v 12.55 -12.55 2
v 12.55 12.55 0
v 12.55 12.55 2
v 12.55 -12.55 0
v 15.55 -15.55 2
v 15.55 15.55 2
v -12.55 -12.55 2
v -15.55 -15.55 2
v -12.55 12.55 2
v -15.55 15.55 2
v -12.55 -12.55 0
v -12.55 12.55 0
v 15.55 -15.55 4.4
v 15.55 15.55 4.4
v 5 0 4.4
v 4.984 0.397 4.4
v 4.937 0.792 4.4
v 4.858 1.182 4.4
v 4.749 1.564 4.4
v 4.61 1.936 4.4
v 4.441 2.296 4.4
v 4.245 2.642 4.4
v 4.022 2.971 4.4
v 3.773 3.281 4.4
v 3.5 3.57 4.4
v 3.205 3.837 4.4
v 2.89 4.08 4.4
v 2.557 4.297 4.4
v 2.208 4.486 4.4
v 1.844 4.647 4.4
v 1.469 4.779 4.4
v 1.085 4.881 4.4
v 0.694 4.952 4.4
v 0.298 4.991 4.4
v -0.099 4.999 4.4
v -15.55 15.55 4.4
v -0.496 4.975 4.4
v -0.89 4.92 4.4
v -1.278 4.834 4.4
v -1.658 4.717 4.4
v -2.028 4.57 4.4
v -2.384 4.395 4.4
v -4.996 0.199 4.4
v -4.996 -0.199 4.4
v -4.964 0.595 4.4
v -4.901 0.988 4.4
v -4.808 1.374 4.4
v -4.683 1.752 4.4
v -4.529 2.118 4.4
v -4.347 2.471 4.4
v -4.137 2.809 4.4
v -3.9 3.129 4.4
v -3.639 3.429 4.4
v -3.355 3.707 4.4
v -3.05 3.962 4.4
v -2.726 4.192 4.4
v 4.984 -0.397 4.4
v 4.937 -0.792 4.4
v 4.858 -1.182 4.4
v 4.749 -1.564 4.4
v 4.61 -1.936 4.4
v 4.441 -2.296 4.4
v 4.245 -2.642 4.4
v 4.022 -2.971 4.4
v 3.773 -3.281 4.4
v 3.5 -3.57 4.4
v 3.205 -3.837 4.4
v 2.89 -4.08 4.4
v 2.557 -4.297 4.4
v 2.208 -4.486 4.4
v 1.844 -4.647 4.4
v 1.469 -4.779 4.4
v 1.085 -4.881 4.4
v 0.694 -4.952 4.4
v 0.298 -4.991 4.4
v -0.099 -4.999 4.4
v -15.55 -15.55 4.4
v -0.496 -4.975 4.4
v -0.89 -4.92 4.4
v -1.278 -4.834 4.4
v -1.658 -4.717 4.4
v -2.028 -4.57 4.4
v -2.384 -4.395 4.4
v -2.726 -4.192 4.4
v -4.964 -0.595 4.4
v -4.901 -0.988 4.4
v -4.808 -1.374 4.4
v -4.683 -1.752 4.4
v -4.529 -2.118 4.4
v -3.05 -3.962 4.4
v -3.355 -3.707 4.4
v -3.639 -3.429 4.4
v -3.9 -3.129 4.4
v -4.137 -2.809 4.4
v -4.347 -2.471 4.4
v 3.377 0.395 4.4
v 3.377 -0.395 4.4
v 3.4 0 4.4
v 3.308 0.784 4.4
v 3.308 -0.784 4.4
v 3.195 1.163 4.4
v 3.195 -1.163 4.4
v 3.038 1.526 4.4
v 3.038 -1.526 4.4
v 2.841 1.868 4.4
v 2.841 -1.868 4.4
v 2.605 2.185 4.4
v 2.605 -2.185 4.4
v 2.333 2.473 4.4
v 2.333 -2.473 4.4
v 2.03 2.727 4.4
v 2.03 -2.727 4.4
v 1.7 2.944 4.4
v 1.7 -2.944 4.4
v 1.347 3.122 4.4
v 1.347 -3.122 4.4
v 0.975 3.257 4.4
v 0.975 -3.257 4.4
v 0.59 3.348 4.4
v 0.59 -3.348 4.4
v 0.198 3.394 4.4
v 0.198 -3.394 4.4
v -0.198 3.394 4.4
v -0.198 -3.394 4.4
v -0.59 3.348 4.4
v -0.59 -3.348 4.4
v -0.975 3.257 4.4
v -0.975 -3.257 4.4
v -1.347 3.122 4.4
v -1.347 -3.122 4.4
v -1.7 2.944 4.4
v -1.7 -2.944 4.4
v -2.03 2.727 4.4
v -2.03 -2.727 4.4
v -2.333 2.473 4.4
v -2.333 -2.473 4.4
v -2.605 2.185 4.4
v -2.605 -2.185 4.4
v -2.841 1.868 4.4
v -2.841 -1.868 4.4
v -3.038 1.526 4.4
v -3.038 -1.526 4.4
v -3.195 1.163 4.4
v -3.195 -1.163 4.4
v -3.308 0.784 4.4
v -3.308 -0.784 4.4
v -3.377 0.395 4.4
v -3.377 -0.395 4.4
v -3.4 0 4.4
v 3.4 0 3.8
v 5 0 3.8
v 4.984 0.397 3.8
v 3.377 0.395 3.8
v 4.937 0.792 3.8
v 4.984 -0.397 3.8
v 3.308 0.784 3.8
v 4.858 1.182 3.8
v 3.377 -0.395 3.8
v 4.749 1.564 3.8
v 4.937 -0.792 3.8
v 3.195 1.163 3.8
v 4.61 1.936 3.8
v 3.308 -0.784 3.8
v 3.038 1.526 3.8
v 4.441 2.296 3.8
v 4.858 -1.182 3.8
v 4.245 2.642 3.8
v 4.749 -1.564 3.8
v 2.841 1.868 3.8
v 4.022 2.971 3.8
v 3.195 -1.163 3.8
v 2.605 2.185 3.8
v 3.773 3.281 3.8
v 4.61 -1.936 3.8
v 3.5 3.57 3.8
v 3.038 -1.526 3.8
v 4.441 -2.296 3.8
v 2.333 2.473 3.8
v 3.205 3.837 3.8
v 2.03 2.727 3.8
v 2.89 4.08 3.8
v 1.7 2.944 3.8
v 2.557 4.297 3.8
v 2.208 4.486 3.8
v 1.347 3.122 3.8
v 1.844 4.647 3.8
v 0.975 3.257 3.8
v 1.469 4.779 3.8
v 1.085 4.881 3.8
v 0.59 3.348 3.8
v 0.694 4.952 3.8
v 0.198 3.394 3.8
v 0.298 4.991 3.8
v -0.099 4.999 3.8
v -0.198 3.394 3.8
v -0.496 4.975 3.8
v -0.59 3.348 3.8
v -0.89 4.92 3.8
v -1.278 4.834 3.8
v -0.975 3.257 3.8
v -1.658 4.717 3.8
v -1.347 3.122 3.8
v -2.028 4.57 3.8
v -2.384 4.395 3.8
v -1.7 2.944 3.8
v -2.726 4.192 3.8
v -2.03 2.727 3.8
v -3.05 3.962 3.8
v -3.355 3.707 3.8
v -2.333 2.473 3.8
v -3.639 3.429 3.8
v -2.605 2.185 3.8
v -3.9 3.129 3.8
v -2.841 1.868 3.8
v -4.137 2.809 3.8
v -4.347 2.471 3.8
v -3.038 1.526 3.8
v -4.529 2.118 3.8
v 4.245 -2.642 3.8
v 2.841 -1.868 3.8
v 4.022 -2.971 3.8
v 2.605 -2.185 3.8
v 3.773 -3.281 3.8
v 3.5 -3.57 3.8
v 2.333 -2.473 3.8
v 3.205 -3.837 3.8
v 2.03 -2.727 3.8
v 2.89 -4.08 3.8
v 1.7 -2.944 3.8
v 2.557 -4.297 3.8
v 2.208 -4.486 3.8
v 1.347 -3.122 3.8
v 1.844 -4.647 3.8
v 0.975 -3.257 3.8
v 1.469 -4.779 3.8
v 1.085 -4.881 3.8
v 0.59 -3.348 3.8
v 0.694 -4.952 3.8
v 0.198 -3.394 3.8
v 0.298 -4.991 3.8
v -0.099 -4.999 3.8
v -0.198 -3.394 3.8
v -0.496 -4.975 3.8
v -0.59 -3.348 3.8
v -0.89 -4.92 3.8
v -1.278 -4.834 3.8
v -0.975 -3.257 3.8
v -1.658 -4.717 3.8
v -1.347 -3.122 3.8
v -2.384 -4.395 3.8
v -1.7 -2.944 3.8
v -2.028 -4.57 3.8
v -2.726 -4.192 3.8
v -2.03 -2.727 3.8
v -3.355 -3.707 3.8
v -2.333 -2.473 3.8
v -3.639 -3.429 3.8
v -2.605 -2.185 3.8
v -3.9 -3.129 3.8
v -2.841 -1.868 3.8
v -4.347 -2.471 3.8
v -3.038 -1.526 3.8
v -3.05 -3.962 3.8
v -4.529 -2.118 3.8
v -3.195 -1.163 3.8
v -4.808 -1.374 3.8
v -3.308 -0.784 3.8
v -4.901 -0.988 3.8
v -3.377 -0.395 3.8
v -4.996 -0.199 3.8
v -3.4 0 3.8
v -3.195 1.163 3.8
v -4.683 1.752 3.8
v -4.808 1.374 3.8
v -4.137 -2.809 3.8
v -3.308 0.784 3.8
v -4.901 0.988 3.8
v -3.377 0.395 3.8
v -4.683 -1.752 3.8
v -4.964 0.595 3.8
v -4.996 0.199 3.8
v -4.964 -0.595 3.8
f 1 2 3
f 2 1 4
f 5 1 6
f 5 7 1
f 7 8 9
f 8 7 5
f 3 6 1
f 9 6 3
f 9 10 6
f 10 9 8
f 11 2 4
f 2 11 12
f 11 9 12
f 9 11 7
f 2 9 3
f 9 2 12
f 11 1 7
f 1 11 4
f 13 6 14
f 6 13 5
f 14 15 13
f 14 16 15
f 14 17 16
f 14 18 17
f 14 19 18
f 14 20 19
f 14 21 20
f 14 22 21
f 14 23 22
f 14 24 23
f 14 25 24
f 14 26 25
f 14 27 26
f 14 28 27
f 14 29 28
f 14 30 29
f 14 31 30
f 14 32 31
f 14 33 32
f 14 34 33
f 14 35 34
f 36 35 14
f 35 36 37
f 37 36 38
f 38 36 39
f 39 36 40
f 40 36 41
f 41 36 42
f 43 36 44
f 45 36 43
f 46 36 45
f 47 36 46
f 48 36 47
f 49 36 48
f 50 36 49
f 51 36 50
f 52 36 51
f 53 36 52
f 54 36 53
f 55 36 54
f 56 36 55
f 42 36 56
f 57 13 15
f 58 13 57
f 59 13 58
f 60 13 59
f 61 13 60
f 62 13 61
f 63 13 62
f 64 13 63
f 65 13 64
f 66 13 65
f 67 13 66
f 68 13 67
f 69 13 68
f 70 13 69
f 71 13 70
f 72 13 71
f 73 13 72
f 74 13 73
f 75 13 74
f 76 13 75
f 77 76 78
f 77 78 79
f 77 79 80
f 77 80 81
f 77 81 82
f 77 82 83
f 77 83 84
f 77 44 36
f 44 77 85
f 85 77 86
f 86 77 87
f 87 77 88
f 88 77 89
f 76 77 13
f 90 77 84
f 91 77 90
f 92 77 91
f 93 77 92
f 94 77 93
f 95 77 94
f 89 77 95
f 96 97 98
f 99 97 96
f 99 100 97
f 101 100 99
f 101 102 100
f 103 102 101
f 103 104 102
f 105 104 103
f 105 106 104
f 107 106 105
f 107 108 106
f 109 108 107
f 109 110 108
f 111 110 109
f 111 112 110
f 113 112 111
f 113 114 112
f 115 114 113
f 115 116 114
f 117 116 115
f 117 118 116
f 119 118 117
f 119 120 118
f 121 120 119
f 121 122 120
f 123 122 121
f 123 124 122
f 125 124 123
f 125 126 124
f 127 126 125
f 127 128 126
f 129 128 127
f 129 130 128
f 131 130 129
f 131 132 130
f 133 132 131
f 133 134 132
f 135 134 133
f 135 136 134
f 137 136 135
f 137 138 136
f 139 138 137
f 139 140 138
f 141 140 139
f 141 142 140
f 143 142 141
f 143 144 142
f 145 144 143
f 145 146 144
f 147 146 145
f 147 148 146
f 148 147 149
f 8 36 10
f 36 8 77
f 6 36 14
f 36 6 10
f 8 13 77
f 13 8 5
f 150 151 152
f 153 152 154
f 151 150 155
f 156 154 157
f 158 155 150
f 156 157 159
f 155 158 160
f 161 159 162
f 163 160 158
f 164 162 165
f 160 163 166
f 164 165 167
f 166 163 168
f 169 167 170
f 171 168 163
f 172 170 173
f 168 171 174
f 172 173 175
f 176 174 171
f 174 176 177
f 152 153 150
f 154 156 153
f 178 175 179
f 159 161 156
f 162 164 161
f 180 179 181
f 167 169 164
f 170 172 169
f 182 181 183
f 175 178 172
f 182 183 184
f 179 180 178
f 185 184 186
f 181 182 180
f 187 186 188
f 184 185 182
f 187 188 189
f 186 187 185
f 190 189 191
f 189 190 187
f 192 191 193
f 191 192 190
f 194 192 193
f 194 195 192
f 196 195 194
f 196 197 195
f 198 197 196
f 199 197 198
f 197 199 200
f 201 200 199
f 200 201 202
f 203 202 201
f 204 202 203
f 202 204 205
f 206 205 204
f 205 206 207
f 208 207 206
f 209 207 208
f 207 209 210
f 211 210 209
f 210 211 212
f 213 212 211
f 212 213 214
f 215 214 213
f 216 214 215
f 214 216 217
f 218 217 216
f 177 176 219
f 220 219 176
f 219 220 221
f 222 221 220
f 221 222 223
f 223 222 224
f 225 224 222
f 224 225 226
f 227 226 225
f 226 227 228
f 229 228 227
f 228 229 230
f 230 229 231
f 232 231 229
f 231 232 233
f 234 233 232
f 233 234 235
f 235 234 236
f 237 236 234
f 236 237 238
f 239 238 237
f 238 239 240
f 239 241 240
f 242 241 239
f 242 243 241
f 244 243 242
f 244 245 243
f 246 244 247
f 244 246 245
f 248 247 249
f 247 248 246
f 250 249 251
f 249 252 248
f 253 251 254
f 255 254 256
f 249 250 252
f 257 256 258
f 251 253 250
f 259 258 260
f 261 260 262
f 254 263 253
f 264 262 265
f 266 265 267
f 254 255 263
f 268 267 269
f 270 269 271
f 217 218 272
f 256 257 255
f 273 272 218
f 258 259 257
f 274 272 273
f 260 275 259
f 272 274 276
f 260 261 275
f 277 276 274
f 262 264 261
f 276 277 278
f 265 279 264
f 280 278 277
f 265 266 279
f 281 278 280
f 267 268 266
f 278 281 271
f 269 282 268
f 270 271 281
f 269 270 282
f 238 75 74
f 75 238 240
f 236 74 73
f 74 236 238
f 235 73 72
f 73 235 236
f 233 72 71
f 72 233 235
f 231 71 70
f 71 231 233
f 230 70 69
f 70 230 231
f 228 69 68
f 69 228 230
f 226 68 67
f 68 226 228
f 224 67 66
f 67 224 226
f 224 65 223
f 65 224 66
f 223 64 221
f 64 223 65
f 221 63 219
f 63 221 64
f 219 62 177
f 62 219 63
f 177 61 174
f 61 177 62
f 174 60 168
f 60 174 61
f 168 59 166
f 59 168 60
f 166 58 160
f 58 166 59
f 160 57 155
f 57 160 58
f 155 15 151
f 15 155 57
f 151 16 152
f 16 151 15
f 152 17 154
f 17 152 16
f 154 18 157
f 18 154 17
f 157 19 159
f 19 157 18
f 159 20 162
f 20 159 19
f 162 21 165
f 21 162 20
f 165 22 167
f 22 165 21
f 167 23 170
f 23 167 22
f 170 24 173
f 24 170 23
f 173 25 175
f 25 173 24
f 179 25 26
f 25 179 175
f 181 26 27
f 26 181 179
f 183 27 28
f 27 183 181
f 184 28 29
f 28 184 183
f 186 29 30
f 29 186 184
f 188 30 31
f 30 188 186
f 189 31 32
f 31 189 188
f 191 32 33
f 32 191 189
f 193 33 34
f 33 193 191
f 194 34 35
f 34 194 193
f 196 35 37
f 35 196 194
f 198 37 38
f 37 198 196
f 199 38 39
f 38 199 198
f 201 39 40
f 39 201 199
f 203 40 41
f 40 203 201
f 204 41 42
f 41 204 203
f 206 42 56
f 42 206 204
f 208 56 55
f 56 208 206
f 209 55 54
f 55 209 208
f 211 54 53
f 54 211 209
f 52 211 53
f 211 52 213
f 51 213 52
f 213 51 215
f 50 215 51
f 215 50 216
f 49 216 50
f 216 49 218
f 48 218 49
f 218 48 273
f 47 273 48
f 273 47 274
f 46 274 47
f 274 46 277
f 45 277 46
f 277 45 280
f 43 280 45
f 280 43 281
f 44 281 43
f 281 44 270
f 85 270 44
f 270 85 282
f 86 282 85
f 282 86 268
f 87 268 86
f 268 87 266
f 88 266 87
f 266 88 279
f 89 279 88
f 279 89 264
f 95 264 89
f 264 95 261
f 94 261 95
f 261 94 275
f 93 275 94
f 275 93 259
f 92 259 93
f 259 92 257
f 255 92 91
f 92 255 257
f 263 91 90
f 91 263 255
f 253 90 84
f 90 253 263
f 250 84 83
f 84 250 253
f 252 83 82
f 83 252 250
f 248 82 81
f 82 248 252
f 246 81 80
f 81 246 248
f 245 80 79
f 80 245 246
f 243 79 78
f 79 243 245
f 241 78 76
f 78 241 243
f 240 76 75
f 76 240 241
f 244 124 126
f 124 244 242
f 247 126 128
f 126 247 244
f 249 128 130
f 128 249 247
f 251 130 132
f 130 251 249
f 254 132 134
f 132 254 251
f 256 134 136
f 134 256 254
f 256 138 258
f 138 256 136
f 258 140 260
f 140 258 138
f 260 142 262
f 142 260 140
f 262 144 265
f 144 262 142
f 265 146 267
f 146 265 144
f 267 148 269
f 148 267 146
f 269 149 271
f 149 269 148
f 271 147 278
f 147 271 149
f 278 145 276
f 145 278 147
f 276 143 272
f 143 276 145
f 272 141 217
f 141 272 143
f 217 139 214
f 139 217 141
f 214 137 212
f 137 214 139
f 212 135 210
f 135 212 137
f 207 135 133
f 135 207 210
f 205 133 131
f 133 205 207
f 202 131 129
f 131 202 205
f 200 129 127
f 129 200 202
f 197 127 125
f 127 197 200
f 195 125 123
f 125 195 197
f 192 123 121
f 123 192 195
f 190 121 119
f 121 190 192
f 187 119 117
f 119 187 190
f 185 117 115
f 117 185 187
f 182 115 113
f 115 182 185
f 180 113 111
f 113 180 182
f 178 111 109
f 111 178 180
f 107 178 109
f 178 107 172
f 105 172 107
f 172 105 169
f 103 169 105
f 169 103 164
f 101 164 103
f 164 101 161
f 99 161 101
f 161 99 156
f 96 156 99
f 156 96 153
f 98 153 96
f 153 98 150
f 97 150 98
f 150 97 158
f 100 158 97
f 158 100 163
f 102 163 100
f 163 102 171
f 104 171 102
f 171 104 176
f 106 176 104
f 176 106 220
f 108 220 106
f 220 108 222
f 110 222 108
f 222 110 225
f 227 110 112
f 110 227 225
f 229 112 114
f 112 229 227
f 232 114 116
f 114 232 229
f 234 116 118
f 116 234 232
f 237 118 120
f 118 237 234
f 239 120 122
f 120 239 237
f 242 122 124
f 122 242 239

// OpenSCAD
// file: ../lib/connectors.scad
// connectors.scad — shared connector geometry.
// Requires grid.scad to be included first.
//
// Convention: a connector lives on an edge face lying in the YZ plane
// at x = 0, centered on y = 0, with the piece's material on the -X
// side for male parts and the +X side for female parts. Pieces
// translate/rotate these modules into position.
//
// All fit-critical dimensions here are ABSOLUTE (see grid.scad).

// Tab & slot (puzzle-style dovetail, full piece thickness).
TAB_NECK  = 6;    // width at the edge face
TAB_HEAD  = 10;   // width at the tip
TAB_DEPTH = 6;    // how far the tab projects

// Dowel pin (1.75mm filament offcuts make free pins).
DOWEL_D     = 1.85;
DOWEL_DEPTH = 6;

// Magnet pocket. Named size "DxH" in mm.
MAGNET = "5x2";
function magnet_d(m = MAGNET) =
    m == "3x2" ? 3 : m == "6x2" ? 6 : m == "8x3" ? 8 : 5;
function magnet_h(m = MAGNET) =
    m == "8x3" ? 3 : 2;

// Dovetail profile, projecting toward +X. grow > 0 loosens the female.
module tab_profile(grow = 0) {
    polygon([
        [-EPS,             -(TAB_NECK / 2 + grow)],
        [TAB_DEPTH + grow, -(TAB_HEAD / 2 + grow)],
        [TAB_DEPTH + grow,   TAB_HEAD / 2 + grow],
        [-EPS,               TAB_NECK / 2 + grow]
    ]);
}

// Male tab: union onto a piece whose edge face is at x = 0.
module tab_male(thickness) {
    linear_extrude(height = thickness) tab_profile(0);
}

// Female slot: subtract from a piece whose edge face is at x = 0,
// material on +X. Mirrored so the slot opens toward -X... the mating
// piece slides in from outside the edge.
module tab_female(thickness, clearance = fit_clearance()) {
    translate([0, 0, -EPS])
        linear_extrude(height = thickness + 2 * EPS)
            mirror([1, 0, 0]) tab_profile(clearance);
}

// Cylindrical pocket bored into an edge face at x = 0, material on +X,
// axis along +X, centered at height z.
module edge_pocket(d, depth, z) {
    translate([-EPS, 0, z])
        rotate([0, 90, 0])
            cylinder(h = depth + EPS, d = d);
}

// Magnet pocket (female on both mating pieces). Slight extra depth so
// the magnet seats flush after glue.
module magnet_pocket(z, m = MAGNET, clearance = fit_clearance()) {
    edge_pocket(magnet_d(m) + clearance, magnet_h(m) + 0.1, z);
}

// Dowel hole (female on both mating pieces).
module dowel_hole(z, clearance = fit_clearance()) {
    edge_pocket(DOWEL_D + clearance, DOWEL_DEPTH, z);
}
// file: ../lib/grid.scad
// grid.scad — core grid, scale, and tolerance foundation.
// Every piece in the system includes this file.
//
// Two classes of dimension, never mixed:
//   scaled()  — aesthetic sizes; follow SCALE so kits can be resized.
//   absolute  — fit-critical sizes (clearances, magnet pockets, pin
//               holes); constant regardless of SCALE.

// One tabletop grid square. 25.4mm (1 inch) keeps pieces in register
// with battlemats and standard 2-inch tile systems. Change once to
// retarget the whole library (e.g. 32 for a 32mm module standard).
GRID_UNIT = 25.4;

// Aesthetic scale multiplier (1.0 = 28mm heroic terrain).
SCALE = 1.0;

// Default structural sizes (scaled, mm at SCALE = 1.0).
FLOOR_THICKNESS   = 4;
WALL_THICKNESS    = 6;
WALL_HEIGHT_UNITS = 2;   // wall height in grid units

// Fit preset: "tight" | "normal" | "loose". Absolute mm — never scaled.
FIT = "normal";

function fit_clearance(fit = FIT) =
    fit == "tight" ? 0.10 :
    fit == "loose" ? 0.25 :
                     0.15;

// Helpers.
function scaled(x) = x * SCALE;
function grid(n)   = n * GRID_UNIT * SCALE;

// Boolean-overlap epsilon for clean CSG.
EPS = 0.01;

// Curve quality.
$fa = 4;
$fs = 0.4;
// main file
// hatch_lid.scad — drop-in lid for 1x1-cell deck/tower openings.
include <../lib/grid.scad>
include <../lib/connectors.scad>
include <../lib/pieces.scad>

hatch_lid();
